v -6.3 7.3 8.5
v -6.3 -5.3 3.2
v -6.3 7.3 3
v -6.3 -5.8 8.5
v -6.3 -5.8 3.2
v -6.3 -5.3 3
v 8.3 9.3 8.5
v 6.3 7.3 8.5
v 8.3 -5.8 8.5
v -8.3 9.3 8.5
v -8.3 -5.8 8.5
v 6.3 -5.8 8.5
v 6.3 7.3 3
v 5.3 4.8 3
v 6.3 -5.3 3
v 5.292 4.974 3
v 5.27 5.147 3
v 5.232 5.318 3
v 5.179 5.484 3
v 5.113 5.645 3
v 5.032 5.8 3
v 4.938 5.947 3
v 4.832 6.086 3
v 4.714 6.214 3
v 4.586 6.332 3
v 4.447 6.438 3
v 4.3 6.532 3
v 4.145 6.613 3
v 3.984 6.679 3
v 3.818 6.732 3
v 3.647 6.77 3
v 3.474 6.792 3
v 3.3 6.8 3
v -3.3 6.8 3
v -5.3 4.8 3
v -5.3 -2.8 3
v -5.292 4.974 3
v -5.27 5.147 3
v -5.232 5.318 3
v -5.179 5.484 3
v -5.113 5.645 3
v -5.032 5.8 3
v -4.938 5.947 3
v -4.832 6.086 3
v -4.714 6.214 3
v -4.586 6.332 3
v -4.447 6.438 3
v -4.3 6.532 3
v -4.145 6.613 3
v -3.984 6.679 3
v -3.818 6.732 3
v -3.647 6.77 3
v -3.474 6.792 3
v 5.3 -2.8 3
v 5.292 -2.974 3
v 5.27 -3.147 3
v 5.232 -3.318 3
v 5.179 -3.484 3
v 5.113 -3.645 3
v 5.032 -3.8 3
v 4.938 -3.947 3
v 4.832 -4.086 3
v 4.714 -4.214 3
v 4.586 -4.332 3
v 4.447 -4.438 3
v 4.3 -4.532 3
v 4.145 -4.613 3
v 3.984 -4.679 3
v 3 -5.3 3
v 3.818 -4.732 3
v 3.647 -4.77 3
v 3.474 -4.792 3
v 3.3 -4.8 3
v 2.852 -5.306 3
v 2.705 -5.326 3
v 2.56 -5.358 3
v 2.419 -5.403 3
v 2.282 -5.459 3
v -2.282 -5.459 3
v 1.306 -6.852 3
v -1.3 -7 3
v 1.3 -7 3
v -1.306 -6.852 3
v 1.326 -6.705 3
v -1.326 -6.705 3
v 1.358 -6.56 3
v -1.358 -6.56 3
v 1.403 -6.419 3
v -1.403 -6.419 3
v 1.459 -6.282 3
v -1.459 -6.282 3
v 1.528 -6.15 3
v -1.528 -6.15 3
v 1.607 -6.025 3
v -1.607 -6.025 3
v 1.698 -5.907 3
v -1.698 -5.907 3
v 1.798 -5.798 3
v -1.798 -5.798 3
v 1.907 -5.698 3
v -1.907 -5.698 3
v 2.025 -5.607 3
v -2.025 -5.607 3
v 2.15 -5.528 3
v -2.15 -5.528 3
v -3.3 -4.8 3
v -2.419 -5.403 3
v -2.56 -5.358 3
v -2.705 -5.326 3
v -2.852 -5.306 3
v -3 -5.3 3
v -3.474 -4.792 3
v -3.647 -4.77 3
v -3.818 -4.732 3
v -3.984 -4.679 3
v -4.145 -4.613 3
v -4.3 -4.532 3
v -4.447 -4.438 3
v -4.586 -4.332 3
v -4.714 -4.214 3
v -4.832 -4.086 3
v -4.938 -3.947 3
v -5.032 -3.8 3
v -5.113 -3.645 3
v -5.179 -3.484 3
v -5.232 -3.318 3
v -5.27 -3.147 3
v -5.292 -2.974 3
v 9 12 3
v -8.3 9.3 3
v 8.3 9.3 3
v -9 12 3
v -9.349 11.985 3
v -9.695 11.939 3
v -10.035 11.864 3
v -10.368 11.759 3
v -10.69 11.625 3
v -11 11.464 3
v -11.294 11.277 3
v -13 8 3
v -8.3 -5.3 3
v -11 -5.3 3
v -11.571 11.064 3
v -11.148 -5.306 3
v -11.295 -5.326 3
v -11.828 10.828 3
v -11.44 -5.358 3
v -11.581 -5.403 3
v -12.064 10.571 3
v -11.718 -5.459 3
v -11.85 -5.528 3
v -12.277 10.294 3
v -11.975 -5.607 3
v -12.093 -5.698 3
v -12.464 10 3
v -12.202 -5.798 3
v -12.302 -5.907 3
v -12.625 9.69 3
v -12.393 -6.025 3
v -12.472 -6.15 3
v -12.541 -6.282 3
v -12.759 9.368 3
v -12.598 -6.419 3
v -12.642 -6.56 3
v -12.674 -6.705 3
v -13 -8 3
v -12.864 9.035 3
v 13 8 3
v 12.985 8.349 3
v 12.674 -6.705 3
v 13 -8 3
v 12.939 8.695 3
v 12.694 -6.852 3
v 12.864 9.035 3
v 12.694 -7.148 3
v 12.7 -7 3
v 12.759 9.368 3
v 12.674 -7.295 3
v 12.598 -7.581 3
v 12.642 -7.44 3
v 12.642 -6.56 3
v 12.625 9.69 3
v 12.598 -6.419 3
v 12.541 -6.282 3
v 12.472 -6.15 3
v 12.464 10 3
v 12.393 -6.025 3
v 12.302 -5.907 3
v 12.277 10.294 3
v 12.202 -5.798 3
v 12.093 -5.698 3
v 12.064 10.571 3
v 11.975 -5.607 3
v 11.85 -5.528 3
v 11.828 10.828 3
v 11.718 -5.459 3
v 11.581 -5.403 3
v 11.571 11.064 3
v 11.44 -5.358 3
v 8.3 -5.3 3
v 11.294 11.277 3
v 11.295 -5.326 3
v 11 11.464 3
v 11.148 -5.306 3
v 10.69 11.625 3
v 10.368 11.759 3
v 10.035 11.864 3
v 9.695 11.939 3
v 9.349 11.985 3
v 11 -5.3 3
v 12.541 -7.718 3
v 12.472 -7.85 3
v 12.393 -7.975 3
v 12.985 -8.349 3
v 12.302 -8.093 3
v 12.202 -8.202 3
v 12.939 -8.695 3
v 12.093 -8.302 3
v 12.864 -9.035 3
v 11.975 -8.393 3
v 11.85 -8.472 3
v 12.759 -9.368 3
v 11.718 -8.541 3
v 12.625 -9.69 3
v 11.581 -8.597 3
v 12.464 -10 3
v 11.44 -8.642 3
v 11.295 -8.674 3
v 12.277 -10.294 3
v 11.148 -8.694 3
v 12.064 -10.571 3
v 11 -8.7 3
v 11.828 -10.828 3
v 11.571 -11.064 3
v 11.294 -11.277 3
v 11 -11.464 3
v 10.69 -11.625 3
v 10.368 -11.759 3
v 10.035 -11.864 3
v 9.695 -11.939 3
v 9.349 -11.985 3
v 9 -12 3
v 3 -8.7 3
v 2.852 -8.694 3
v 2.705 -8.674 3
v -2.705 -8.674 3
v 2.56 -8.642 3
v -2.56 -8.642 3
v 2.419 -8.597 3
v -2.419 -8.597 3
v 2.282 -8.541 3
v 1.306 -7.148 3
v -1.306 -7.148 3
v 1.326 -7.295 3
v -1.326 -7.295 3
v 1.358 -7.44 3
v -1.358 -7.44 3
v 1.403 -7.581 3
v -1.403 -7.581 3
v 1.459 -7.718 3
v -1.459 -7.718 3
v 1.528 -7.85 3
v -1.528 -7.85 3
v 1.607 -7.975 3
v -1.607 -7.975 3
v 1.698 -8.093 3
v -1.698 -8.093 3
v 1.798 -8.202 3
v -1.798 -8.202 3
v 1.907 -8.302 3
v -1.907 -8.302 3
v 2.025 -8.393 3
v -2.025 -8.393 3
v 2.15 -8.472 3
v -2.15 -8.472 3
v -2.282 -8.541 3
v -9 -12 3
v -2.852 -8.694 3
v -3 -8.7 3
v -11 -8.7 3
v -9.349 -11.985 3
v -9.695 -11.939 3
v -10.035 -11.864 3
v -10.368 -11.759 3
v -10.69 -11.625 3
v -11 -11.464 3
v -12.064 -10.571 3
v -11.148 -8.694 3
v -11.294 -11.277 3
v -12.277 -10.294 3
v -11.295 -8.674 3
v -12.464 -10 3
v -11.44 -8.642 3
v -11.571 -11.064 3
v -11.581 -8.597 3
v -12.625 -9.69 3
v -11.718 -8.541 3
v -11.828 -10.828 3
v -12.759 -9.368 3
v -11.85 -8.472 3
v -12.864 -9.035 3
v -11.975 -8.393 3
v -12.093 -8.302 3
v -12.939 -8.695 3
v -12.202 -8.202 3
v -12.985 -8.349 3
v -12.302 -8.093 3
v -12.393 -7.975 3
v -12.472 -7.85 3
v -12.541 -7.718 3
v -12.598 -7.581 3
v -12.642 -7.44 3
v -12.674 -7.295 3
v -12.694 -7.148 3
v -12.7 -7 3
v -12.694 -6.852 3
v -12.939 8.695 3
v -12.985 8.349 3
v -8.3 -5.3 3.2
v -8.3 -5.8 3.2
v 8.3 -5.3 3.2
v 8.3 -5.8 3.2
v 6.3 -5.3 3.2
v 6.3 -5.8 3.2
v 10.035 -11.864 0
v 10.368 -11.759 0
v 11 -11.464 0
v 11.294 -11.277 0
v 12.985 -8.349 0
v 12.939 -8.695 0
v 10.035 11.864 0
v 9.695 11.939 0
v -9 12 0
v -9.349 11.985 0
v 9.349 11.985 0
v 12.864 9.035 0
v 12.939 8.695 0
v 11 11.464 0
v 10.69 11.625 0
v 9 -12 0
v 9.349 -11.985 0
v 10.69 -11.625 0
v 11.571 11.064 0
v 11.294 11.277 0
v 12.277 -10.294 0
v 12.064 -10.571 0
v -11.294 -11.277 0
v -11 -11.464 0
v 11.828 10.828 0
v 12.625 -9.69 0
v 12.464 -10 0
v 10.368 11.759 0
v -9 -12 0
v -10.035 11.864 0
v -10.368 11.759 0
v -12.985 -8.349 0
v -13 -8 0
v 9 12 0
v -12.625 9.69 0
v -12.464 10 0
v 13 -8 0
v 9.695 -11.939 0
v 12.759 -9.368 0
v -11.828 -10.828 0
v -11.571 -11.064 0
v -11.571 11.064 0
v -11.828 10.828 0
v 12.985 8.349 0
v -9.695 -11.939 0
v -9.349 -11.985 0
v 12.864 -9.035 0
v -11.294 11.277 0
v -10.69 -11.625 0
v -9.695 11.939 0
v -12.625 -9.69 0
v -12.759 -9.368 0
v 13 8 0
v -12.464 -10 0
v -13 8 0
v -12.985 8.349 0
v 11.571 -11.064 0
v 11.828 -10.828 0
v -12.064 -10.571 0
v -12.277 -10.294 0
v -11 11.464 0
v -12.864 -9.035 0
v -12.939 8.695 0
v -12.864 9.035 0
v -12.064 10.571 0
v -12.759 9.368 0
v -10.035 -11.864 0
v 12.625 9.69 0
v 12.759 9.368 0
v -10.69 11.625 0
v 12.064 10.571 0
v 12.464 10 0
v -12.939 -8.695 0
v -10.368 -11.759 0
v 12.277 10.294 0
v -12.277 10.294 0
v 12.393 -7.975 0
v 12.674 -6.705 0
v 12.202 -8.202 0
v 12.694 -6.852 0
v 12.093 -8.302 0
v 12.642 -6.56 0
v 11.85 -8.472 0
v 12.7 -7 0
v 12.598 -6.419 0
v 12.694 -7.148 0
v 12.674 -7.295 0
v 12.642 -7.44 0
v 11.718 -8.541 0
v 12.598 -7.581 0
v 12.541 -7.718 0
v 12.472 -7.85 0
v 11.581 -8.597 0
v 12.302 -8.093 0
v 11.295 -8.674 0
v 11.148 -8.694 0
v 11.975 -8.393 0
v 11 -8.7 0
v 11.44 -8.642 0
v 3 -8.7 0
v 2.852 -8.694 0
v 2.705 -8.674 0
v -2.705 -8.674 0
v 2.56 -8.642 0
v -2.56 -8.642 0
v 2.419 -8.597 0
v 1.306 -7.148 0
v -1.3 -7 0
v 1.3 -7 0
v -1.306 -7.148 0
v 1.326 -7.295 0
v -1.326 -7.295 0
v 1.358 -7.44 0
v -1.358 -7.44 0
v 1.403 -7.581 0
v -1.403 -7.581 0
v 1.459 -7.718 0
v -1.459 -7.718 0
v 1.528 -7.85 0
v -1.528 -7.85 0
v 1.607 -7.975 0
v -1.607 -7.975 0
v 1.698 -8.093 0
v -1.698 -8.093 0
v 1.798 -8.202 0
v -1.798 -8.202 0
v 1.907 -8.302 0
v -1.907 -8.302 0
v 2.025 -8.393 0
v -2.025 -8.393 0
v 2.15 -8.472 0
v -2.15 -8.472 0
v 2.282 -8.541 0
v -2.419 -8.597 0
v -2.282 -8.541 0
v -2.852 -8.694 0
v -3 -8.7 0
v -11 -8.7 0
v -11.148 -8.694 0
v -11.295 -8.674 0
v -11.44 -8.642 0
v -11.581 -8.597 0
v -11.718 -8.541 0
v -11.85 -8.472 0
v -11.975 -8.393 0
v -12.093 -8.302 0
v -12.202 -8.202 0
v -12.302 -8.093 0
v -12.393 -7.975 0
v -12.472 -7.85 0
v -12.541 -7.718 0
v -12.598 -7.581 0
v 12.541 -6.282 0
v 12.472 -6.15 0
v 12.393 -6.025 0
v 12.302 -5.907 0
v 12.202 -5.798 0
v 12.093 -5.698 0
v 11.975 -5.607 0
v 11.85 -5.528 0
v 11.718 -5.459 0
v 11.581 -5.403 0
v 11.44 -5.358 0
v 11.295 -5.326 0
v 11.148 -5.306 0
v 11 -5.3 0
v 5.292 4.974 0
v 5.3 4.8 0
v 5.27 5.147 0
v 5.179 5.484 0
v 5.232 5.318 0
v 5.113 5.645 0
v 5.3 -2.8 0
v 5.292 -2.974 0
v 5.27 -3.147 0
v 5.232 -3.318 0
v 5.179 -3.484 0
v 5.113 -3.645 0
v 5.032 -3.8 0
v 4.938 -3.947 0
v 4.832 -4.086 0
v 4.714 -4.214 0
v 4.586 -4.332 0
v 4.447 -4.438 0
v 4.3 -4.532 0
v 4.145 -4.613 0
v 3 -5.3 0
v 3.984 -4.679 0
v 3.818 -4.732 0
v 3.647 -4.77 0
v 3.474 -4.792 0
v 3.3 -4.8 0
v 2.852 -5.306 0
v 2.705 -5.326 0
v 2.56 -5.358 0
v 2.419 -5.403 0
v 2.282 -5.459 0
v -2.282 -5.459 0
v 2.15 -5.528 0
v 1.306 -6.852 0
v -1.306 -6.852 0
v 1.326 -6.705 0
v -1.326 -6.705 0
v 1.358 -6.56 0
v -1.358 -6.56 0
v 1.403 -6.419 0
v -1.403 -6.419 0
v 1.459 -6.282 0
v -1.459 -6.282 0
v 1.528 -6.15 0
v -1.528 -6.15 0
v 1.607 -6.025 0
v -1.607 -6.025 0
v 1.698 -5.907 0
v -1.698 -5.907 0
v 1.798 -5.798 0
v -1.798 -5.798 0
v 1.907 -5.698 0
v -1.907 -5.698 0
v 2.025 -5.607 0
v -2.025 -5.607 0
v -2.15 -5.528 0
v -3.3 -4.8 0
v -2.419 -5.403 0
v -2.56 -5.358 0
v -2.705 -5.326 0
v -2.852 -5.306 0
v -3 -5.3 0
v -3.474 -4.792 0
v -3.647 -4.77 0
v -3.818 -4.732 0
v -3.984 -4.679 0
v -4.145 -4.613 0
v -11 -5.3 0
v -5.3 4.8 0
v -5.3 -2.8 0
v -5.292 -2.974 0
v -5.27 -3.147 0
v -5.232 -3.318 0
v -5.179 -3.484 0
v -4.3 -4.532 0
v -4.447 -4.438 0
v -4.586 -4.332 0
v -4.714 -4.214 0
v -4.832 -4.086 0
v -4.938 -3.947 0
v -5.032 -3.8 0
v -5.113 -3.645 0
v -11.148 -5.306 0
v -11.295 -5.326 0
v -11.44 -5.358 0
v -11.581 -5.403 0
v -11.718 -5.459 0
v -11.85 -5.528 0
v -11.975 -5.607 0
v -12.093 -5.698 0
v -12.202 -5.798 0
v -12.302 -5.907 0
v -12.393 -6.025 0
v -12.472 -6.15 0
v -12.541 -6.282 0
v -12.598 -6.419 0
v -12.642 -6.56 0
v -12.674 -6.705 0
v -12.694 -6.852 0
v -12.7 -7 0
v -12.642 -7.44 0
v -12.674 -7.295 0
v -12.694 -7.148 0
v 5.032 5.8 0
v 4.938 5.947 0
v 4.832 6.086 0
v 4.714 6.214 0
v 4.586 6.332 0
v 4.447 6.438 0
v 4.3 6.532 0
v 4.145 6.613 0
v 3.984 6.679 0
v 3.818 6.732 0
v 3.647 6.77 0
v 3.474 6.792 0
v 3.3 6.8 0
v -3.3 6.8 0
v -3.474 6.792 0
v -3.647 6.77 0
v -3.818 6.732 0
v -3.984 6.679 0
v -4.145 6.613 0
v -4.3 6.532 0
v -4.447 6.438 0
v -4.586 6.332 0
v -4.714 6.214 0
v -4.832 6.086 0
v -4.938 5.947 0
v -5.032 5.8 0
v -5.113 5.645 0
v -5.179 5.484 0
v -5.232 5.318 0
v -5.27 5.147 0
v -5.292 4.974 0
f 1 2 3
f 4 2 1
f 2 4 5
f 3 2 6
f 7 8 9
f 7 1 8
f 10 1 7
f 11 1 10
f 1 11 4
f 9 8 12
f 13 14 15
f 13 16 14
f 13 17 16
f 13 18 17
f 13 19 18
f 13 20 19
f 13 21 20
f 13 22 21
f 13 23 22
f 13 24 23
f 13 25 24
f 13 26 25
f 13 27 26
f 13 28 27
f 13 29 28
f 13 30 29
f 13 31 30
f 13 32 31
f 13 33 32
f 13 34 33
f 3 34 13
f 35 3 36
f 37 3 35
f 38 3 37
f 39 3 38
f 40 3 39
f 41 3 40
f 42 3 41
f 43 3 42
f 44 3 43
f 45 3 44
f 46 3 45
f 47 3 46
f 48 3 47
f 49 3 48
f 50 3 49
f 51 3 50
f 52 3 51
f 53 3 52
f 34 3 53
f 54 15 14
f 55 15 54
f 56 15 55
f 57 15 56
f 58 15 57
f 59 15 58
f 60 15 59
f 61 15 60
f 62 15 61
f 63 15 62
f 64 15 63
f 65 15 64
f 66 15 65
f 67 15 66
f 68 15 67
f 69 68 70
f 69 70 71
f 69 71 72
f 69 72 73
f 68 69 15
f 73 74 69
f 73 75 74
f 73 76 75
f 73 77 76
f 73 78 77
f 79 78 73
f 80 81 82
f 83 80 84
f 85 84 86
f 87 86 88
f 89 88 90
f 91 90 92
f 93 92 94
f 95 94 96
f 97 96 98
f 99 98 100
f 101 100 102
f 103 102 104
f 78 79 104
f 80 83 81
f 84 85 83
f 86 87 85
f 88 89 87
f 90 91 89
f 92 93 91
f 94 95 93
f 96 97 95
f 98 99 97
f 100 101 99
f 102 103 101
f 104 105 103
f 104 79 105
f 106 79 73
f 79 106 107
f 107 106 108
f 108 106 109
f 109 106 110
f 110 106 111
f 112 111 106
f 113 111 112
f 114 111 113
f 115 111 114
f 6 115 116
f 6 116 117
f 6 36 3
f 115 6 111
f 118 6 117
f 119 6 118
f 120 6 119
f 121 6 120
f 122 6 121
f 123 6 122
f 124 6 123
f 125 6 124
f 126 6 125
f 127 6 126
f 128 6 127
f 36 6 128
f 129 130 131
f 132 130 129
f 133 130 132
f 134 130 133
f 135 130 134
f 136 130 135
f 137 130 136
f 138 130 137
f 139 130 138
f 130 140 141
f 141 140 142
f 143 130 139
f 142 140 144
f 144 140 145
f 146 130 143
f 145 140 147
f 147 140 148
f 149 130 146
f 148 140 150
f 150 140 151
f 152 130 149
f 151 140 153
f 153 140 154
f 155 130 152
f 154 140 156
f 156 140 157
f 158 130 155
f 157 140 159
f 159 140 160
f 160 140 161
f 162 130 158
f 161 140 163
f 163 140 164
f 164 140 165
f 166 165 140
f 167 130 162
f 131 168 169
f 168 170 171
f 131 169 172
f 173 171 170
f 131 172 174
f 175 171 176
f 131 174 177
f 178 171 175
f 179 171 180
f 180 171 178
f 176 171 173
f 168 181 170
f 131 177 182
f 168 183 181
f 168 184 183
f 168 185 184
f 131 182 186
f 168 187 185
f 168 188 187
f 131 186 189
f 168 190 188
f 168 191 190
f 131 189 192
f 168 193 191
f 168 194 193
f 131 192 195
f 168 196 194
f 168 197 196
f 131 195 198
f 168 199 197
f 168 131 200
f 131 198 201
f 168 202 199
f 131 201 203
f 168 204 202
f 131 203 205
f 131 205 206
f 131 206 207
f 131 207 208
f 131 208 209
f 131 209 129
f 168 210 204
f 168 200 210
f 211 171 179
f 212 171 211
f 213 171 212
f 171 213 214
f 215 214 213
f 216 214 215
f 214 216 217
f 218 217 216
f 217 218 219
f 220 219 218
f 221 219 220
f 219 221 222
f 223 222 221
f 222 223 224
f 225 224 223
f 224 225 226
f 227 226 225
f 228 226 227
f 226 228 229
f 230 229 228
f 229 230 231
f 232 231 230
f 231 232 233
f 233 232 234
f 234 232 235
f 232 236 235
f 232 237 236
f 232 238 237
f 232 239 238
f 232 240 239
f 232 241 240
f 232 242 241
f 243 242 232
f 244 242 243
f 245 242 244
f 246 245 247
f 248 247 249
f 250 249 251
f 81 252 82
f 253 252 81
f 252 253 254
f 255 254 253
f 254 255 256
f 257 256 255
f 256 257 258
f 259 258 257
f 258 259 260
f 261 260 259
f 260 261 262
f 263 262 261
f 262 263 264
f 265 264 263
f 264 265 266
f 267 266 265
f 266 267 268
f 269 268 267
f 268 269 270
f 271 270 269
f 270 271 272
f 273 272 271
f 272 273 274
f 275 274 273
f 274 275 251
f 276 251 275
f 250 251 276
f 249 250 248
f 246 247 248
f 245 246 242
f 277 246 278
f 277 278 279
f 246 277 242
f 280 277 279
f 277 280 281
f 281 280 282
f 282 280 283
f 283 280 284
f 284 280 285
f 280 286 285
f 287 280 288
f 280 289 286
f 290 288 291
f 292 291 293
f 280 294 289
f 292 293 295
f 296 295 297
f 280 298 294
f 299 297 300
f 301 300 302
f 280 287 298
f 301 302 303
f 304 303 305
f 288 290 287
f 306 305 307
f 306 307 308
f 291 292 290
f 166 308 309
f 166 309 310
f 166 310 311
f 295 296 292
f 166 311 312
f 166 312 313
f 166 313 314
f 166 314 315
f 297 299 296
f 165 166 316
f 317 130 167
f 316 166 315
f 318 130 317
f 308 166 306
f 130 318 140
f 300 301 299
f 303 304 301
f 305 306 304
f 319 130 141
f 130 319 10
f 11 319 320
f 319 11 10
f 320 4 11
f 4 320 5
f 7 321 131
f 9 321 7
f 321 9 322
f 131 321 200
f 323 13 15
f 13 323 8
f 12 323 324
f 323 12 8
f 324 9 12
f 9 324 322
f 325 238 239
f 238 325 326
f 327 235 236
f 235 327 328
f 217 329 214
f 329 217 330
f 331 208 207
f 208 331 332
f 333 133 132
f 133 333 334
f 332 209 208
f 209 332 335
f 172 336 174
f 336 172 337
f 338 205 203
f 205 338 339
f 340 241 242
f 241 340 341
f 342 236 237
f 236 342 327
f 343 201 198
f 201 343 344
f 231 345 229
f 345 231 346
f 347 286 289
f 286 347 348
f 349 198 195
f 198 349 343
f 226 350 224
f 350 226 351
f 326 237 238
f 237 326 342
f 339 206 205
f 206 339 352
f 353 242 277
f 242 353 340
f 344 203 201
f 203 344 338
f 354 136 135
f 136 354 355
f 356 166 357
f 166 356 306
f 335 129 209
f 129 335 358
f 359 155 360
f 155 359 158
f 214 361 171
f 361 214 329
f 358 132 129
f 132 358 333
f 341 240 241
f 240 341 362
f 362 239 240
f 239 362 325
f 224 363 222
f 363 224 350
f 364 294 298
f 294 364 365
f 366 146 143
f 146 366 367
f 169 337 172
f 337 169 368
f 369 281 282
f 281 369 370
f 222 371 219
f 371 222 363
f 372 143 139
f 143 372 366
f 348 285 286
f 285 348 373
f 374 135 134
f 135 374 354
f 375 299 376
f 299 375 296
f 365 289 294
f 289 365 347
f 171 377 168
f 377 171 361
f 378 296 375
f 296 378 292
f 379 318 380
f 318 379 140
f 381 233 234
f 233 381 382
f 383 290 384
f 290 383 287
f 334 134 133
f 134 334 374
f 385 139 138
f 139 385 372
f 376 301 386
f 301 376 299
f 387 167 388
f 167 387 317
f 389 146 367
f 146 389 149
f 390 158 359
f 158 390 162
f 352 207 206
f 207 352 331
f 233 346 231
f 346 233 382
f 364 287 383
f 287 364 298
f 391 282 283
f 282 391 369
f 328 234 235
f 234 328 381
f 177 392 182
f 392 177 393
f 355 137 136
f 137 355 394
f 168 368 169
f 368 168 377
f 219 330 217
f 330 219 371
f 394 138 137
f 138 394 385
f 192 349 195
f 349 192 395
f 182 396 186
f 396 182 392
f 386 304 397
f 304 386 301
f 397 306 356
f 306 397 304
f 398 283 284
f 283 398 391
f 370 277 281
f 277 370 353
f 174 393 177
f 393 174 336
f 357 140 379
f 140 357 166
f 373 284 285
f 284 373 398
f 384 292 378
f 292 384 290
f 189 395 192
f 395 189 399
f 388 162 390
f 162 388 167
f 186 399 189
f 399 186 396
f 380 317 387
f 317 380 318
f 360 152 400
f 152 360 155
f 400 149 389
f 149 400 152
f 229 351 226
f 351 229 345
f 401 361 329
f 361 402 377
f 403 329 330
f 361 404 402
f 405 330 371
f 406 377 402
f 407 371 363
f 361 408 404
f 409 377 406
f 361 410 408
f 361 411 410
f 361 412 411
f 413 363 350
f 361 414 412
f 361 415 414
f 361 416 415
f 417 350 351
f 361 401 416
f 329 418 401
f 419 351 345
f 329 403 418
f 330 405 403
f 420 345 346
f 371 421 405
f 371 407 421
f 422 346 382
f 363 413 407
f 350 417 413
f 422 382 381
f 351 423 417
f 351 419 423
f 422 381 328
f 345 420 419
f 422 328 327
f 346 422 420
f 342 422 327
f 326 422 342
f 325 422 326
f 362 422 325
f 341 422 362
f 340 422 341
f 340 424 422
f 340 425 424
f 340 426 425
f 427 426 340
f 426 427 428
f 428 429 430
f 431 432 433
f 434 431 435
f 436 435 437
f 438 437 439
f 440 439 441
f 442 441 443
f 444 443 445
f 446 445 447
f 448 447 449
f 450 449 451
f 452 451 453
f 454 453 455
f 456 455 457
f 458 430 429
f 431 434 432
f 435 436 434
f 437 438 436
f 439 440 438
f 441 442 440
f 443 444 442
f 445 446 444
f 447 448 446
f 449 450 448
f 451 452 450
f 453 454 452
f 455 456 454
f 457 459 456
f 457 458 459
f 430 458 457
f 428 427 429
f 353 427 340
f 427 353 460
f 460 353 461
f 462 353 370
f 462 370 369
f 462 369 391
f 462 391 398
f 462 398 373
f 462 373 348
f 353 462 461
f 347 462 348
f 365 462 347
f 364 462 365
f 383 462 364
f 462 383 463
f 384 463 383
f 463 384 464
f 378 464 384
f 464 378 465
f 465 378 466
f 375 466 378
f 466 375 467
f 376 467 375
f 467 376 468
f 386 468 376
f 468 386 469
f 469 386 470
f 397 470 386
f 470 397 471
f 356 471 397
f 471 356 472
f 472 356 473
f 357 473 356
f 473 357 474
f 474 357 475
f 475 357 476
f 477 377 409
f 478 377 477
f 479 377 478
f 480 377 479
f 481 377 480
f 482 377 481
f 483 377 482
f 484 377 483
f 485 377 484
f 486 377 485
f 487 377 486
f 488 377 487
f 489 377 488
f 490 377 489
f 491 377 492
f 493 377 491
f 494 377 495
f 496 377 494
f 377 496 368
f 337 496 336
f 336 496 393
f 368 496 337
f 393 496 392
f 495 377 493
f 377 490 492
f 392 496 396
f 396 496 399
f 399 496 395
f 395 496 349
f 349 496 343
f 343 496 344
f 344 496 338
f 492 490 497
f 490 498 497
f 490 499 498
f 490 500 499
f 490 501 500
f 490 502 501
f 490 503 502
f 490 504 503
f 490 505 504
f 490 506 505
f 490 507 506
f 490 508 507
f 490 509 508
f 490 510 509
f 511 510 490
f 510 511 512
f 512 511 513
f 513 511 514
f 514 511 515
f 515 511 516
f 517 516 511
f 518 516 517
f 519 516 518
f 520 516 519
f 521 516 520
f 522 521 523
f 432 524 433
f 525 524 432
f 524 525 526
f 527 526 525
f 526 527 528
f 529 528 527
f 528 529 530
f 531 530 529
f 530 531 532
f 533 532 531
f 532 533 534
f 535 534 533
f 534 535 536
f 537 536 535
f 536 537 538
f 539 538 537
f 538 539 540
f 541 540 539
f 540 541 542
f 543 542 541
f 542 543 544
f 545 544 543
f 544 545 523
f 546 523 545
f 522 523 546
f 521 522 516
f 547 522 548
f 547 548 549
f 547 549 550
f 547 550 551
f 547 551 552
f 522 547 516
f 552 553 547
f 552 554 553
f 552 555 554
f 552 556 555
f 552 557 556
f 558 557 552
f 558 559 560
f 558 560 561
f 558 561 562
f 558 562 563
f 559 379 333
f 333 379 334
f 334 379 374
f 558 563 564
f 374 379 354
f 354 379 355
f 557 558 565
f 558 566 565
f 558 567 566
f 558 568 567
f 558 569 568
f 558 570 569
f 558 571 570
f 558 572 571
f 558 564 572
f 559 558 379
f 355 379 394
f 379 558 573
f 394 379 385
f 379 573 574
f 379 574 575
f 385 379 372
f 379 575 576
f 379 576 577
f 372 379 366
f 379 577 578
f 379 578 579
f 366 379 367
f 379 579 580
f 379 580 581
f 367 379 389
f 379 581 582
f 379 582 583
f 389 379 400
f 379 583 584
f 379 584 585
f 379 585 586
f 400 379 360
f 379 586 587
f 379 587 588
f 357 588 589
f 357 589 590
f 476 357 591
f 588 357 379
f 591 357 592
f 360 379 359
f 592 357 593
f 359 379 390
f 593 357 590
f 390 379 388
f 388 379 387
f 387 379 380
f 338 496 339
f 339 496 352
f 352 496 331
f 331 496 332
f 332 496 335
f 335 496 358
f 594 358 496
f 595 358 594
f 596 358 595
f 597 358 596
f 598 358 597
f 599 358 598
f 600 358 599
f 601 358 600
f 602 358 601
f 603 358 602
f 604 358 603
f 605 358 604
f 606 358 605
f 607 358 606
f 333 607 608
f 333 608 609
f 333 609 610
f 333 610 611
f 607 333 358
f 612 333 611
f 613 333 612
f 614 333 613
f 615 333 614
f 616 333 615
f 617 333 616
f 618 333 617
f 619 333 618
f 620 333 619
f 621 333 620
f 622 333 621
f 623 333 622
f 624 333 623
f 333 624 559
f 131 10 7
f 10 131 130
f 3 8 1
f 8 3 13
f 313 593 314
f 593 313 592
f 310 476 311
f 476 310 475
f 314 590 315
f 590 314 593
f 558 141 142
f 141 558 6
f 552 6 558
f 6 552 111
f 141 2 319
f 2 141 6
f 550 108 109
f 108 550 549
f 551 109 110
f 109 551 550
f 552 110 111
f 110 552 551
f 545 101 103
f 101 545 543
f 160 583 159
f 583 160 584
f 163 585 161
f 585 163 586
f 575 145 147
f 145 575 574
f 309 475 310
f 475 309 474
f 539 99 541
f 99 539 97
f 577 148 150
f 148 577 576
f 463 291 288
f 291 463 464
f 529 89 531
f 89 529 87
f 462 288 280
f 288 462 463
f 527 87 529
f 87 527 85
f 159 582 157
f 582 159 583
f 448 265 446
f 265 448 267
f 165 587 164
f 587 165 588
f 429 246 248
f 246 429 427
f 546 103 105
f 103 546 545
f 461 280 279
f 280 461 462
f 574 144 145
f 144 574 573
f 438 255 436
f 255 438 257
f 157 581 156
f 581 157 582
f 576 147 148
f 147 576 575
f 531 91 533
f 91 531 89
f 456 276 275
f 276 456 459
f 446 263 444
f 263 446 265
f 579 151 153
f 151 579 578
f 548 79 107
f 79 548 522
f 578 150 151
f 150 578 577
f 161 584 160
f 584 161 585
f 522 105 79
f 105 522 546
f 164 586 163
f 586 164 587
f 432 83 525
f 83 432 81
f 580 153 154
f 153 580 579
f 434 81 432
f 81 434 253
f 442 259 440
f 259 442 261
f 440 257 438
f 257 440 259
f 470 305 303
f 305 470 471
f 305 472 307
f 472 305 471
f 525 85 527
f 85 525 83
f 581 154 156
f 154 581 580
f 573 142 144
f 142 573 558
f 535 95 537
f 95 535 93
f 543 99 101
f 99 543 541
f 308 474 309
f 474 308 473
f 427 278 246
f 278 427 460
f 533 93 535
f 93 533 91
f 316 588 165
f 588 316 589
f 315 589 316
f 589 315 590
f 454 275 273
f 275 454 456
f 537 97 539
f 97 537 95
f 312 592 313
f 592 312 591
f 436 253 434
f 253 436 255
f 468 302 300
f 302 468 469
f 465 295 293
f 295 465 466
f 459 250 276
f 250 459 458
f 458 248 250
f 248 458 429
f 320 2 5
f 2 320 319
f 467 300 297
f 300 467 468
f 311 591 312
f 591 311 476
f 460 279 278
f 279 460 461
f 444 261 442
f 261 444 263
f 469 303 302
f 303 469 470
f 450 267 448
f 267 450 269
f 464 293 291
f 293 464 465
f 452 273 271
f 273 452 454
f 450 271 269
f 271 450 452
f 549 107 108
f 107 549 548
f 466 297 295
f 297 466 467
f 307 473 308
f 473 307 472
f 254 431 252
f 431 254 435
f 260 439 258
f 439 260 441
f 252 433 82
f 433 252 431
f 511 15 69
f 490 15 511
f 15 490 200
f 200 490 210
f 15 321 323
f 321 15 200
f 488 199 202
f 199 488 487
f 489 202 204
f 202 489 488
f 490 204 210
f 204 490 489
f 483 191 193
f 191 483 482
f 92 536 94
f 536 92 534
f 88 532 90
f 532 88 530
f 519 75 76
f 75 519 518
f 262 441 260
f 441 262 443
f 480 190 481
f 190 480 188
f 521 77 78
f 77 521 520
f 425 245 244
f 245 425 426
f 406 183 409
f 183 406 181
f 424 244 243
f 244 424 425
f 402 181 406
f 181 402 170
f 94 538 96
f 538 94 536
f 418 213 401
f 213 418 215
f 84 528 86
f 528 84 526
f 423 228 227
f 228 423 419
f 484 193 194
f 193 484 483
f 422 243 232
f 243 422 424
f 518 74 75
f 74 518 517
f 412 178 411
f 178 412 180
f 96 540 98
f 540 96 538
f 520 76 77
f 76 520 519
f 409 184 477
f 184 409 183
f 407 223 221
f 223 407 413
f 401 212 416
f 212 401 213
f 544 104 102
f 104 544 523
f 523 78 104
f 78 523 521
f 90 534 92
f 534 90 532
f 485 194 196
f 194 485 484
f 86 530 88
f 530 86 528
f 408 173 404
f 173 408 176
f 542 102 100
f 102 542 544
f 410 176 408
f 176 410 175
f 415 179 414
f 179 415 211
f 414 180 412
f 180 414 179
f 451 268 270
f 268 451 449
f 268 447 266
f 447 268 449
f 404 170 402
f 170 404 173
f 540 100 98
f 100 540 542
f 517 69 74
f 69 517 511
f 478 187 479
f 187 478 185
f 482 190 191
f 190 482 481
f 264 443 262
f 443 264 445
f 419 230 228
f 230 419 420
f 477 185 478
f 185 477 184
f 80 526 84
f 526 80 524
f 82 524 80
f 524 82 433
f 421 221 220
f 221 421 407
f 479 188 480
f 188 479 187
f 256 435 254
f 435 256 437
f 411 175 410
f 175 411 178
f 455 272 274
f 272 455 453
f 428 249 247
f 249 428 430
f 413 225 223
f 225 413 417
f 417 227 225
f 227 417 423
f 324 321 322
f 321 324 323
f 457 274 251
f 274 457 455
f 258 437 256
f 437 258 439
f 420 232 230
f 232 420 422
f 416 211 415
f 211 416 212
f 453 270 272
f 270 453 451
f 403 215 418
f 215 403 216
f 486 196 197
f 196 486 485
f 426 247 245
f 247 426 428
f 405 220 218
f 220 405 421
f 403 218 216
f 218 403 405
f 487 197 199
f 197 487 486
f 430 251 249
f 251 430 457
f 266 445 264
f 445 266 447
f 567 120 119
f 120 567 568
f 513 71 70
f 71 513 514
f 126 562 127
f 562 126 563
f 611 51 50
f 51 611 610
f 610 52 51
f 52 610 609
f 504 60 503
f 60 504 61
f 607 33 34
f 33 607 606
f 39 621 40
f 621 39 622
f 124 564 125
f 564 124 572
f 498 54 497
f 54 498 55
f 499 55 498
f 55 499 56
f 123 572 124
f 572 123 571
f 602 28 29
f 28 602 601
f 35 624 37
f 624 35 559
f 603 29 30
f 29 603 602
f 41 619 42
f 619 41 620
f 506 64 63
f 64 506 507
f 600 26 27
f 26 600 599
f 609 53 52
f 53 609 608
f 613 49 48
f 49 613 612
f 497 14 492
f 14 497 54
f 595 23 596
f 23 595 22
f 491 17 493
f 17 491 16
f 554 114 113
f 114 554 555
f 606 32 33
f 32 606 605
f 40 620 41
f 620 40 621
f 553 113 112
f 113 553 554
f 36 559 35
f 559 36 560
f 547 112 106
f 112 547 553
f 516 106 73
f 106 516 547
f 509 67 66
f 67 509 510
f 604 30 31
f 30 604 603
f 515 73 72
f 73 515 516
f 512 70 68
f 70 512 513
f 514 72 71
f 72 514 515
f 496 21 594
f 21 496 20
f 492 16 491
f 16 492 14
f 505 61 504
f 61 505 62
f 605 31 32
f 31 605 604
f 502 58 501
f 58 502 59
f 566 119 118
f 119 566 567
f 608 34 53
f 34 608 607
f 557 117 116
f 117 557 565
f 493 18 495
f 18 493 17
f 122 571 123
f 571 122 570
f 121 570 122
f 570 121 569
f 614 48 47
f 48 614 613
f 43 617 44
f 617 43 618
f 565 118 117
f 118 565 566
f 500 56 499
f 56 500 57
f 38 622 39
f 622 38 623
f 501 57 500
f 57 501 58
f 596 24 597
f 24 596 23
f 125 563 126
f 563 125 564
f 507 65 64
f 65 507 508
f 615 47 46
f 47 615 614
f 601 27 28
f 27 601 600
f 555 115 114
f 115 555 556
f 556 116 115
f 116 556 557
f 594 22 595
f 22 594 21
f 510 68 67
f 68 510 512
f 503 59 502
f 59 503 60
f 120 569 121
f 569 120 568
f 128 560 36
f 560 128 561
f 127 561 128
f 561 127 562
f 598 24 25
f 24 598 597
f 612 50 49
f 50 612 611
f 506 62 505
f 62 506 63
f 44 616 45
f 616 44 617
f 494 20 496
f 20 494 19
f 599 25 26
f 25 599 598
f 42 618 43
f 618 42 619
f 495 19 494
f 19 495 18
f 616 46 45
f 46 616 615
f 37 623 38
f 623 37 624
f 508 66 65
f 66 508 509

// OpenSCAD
// file: woli_config.scad
// ============================================================
// WOLI V1.1 AUDITED FINAL — MASTER PARAMETERS
// Units: mm
// ============================================================

$fn = 72;

// ---------- GLOBAL ----------
fit_clearance = 0.40;
wall = 3.0;
floor_t = 5.0;
cover_t = 2.8;
shell_r = 10.0;

m3_clear = 3.4;
m3_pilot_d = 2.8;
m3_pilot_depth = 4.2;

tie_slot_w = 3.8;
tie_slot_l = 18;

// ---------- BODY ----------
body_w = 170;
body_l = 90;
chassis_h = 31;
top_h = 34;

top_upper_w = 162;
top_upper_l = 80;
top_upper_r = 9;

// ---------- N20 DRIVE ----------
wheel_d = 43;
wheel_w = 17.5;

n20_x = 12;
n20_y = 33;
n20_z = 10;

n20_bracket_x = 25;
n20_bracket_y = 8.5;
n20_bracket_z = 11.5;
n20_bracket_hole_cc = 17;      // approx; slots absorb error

wheel_axis_ground_z = wheel_d/2; // reference only; actual chassis ground plane requires hardware check
wheel_opening_l = 25;            // side wheel cutout depth (Y), mm
motor_y = -body_l/2 + body_l/3;  // wheel center: 1/3 body depth in from front (-Y)
motor_slot_len = 8;
motor_bracket_zone_x = body_w/2 - 18;

// ---------- BALL CASTER ----------
caster_w = 22;
caster_l = 17;
caster_h = 15;
caster_ball_d_visual_ref = 11.5; // photo-only reference; not used for fit
caster_dock_y = body_l/2 - 21;

caster_body_clear = 0.7;
caster_retainer_t = 3.0;
caster_retainer_screw_cc = 27;

caster_mount_x = 15;
caster_mount_y = 12;
caster_floor_open = 18.5;

// ---------- MAIN PCB ----------
pcb_w = 50;
pcb_l = 70;
pcb_stack_h = 15;

pcb_tray_w = 56;
pcb_tray_l = 76;
pcb_mount_cc_x = 44;
pcb_mount_cc_y = 64;

// ---------- MG90S ----------
servo_a = 32.4;
servo_b = 32.5;
servo_c = 12;
servo_fit = 0.7;

// ---------- LIMIT SWITCH ----------
limit_w = 21;
limit_l = 23;
limit_h = 6;

// ---------- VL53L0X ----------
tof_w = 10.7;
tof_l = 25;
tof_h = 11.5;
tof_rail_clear = 0.7;

tof_bezel_w = 34;
tof_bezel_h = 19;

// ---------- PHONE HOLDER / NECK ----------
phone_ball_d = 18.0;            // physical socket fit still required
neck_h = 30;
neck_base_w = 54;
neck_base_l = 42;
neck_base_h = 5;
neck_hole_x = 38;
neck_hole_y = 26;

neck_recess_w = 62;
neck_recess_l = 50;
neck_recess_d = 1.2;

neck_pilot_d = 2.8;
neck_pilot_depth = 7.0;

// reference phone clearance envelope only
phone_ref_w = 165;
phone_ref_h = 82;
phone_ref_t = 12;

// ---------- KLIFE PD-Q2 BATTERY ----------
battery_w = 68;
battery_l = 143;
battery_h = 11;
battery_mass_g = 205;

battery_fit_clear = 0.8;
battery_tray_w = 84;
battery_tray_l = 146;
battery_tray_t = 2.4;
battery_rail_t = 2.5;
battery_rail_h = 5.5;
battery_center_y = -18;

battery_tray_mount_x = 39;
battery_tray_mount_y = 55;

// ---------- UPPER ELECTRONICS DECK ----------
bridge_w = 122;
bridge_l = 94;
bridge_t = 3.0;
bridge_leg_h = 20;
bridge_leg_x = 56;
bridge_leg_y = 36;

module_boss_h = 4.5;
module_boss_d = 8.0;
module_pilot_d = 2.8;

pcb_deck_cx = -25;
pcb_deck_cy = 0;

tb_deck_cx = 34;
tb_deck_cy = 17;

usbc_deck_cx = 36;
usbc_deck_cy = -24;

// ---------- TB6612FNG HW-166 ----------
tb6612_w = 26;
tb6612_l = 26;
tb6612_clear = 0.6;

// total installed height is intentionally not hard-coded

// ---------- USB-C BREAKOUT ----------
usbc_board_w = 12;
usbc_board_l = 15;
usbc_connector_h = 4.2;
usbc_clear = 0.6;

// ---------- TOP COVER INTERFACE ----------
cover_skirt_depth = 4.0;
cover_skirt_clear = 0.8;
cover_skirt_t = 2.5;

cover_side_screw_y = 55 * body_l / 190;
cover_side_screw_z = -2.5;

rear_service_w = 42;
rear_service_h = 14;
rear_hatch_screw_x = 19;
rear_hatch_center_z = 10;

// ---------- CABLE MANAGEMENT ----------
cable_bridge_w = 24;
cable_bridge_l = 14;
cable_bridge_h = 8;
cable_bridge_channel = 8;

// ---------- SERVO LOCK FRAMEWORK ----------
lock_angle_deg = 90;
unlock_angle_deg = 10;

lock_plate_d = 28;
lock_arm_w = 10;
lock_arm_t = 4.0;
lock_reach = 22;
lock_tip_d = 10;

horn_center_clear_d = 7.0;
horn_slot_d = 2.4;              // physical stock-horn check required
horn_slot_len = 8.0;
horn_slot_radius = 8.0;

lock_pad_t = 2.0;
lock_pad_d = 11.0;
// file: woli_lib.scad
include <woli_config.scad>;

module rr2d(w,l,r){
    offset(r=r) square([w-2*r,l-2*r], center=true);
}

module rplate(w,l,h,r){
    linear_extrude(height=h) rr2d(w,l,r);
}

module rshell(w,l,h,r,t,bottom){
    difference(){
        rplate(w,l,h,r);
        translate([0,0,bottom])
            rplate(w-2*t,l-2*t,h,r-t);
    }
}

module slot2d(len,d){
    hull(){
        translate([-len/2,0]) circle(d=d);
        translate([ len/2,0]) circle(d=d);
    }
}

module slot3d(len,d,h){
    linear_extrude(height=h) slot2d(len,d);
}

module tie_slot(h=5){
    rplate(tie_slot_w,tie_slot_l,h,1.2);
}

module body_screw_pattern(h=20){
    for(x=[-screw_x,screw_x])
        for(y=[-screw_y,screw_y])
            translate([x,y,-1])
                cylinder(h=h,d=m3_clear);
}

module body_bosses(h=20){
    for(x=[-screw_x,screw_x])
        for(y=[-screw_y,screw_y])
            translate([x,y,0])
                cylinder(h=h,d=m3_boss_d);
}


// Closed-top shell for removable upper cover.
// Leaves the underside open and preserves a roof thickness.
module top_shell(w,l,h,r,t){
    difference(){
        rplate(w,l,h,r);
        translate([0,0,-0.1])
            rplate(w-2*t,l-2*t,h-t+0.1,r-t);
    }
}


// Tapered rounded solid built from two rounded plates.
// Useful for product-like enclosure shoulders.
module tapered_rounded_solid(w0,l0,w1,l1,h,r0,r1){
    hull(){
        rplate(w0,l0,0.8,r0);
        translate([0,0,h-0.8])
            rplate(w1,l1,0.8,r1);
    }
}

// Open-bottom tapered cover with closed roof.
module tapered_top_shell(w0,l0,w1,l1,h,r0,r1,t){
    difference(){
        tapered_rounded_solid(w0,l0,w1,l1,h,r0,r1);
        translate([0,0,-0.1])
            tapered_rounded_solid(
                w0-2*t,l0-2*t,
                w1-2*t,l1-2*t,
                h-t+0.1,
                max(r0-t,1),max(r1-t,1)
            );
    }
}
// main file
include <woli_lib.scad>;

// ============================================================
// 16 USB-C FEMALE BREAKOUT HOLDER V0.3.1
// Confirmed board: approx 12 x 15 mm
// Connector thickness: approx 4.2 mm
// Front is left open so USB-C plug can be inserted.
// ============================================================

base_w = 26;
base_l = 24;
base_t = 3;
rail_h = 5.5;
board_w = usbc_board_w + usbc_clear;
board_l = usbc_board_l + usbc_clear;

difference(){
    union(){
        rplate(base_w,base_l,base_t,4);

        // left/right rails around board width
        for(x=[-1,1])
            translate([x*(board_w/2+1.0), 1,
                       base_t+rail_h/2])
                cube([2,board_l-2,rail_h],center=true);

        // rear stop only; front remains open for connector access
        translate([0, board_l/2+0.5,
                   base_t+rail_h/2])
            cube([board_w+4,2,rail_h],center=true);
    }

    // board bottom relief
    translate([0,1,-0.1])
        rplate(board_w-2,board_l-4,base_t+0.3,2);

    // two adjustable deck slots
    for(x=[-7,7])
        translate([x,-7,-0.1])
            slot3d(8,m3_clear,base_t+0.3);
}
